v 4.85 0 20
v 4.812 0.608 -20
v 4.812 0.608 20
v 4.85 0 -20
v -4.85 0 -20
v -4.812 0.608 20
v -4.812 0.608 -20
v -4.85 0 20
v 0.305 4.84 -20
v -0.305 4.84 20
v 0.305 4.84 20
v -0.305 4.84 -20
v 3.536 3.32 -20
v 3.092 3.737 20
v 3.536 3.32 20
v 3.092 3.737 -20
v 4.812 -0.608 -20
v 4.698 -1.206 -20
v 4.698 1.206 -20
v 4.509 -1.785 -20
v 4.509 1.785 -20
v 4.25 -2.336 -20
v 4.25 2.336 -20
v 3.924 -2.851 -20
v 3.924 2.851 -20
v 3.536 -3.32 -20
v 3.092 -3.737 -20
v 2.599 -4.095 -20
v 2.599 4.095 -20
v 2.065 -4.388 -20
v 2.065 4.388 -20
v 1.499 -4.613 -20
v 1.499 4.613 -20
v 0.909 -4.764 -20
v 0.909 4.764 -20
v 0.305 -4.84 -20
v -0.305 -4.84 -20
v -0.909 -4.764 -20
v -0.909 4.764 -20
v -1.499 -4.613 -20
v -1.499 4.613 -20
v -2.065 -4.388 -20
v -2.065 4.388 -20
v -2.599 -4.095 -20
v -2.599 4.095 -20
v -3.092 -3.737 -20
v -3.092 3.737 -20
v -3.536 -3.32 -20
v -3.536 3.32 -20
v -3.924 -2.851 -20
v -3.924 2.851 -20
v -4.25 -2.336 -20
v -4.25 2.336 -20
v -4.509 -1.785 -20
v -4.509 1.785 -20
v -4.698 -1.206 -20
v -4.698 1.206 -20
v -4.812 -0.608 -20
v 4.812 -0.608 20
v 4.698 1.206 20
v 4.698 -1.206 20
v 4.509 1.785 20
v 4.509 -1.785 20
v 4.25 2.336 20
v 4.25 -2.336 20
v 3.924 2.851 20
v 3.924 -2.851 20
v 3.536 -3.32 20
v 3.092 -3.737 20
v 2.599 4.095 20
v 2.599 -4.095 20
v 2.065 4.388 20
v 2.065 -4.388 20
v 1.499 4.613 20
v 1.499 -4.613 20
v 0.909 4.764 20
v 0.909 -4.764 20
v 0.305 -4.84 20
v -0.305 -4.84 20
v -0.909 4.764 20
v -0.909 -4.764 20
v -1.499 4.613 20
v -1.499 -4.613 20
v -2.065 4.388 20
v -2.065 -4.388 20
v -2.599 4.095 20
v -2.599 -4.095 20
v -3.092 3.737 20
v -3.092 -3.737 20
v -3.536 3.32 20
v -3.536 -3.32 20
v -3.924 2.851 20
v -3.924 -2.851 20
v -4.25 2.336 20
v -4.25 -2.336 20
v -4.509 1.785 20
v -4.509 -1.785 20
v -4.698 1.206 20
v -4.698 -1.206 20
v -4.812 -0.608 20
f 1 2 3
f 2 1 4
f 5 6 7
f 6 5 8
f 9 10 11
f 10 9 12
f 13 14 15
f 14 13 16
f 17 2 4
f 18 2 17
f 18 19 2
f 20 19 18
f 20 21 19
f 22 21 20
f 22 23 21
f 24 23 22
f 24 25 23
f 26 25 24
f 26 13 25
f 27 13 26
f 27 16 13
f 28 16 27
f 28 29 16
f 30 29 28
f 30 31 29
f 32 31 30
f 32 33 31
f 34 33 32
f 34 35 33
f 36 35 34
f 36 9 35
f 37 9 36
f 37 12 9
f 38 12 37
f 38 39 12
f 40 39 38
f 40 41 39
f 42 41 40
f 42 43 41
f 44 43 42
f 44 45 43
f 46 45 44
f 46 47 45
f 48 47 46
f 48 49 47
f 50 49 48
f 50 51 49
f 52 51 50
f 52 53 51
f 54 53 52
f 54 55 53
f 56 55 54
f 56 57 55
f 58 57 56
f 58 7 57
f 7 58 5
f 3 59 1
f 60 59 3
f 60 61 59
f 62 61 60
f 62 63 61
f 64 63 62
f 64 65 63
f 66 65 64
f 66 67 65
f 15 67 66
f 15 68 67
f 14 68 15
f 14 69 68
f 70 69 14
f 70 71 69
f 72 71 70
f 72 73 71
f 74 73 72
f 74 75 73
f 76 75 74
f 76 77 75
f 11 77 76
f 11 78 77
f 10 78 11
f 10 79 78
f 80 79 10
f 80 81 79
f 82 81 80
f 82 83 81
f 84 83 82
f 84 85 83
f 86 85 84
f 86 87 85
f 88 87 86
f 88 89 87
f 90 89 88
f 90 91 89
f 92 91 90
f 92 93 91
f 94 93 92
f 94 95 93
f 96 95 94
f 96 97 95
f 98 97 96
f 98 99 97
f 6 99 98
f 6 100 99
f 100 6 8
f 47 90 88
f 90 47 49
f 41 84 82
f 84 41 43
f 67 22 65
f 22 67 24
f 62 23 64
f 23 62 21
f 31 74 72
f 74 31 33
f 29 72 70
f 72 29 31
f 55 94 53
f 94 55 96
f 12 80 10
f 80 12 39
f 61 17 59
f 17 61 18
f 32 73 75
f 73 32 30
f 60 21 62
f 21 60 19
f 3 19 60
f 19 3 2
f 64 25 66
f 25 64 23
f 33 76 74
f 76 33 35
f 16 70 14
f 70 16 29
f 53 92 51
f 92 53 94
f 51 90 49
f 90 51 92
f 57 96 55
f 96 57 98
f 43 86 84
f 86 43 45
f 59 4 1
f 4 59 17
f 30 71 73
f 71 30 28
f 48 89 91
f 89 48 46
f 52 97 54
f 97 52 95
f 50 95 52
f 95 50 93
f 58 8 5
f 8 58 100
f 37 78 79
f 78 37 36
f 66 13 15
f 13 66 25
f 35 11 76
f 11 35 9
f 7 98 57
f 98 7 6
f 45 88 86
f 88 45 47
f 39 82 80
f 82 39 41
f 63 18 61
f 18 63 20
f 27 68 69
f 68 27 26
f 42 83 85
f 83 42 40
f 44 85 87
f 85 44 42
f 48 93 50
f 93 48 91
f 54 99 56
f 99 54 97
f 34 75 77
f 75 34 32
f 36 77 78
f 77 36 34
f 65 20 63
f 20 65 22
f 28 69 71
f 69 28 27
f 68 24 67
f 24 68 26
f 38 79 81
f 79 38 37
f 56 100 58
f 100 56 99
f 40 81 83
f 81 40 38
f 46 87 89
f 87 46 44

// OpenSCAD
$fn = 50;


difference() {
	union() {
		translate(v = [0, 0, -20.0000000000]) {
			cylinder(h = 40, r = 4.8500000000);
		}
	}
	union() {
		translate(v = [0, 0, -100.0000000000]) {
			cylinder(h = 200, r = 0);
		}
	}
}
